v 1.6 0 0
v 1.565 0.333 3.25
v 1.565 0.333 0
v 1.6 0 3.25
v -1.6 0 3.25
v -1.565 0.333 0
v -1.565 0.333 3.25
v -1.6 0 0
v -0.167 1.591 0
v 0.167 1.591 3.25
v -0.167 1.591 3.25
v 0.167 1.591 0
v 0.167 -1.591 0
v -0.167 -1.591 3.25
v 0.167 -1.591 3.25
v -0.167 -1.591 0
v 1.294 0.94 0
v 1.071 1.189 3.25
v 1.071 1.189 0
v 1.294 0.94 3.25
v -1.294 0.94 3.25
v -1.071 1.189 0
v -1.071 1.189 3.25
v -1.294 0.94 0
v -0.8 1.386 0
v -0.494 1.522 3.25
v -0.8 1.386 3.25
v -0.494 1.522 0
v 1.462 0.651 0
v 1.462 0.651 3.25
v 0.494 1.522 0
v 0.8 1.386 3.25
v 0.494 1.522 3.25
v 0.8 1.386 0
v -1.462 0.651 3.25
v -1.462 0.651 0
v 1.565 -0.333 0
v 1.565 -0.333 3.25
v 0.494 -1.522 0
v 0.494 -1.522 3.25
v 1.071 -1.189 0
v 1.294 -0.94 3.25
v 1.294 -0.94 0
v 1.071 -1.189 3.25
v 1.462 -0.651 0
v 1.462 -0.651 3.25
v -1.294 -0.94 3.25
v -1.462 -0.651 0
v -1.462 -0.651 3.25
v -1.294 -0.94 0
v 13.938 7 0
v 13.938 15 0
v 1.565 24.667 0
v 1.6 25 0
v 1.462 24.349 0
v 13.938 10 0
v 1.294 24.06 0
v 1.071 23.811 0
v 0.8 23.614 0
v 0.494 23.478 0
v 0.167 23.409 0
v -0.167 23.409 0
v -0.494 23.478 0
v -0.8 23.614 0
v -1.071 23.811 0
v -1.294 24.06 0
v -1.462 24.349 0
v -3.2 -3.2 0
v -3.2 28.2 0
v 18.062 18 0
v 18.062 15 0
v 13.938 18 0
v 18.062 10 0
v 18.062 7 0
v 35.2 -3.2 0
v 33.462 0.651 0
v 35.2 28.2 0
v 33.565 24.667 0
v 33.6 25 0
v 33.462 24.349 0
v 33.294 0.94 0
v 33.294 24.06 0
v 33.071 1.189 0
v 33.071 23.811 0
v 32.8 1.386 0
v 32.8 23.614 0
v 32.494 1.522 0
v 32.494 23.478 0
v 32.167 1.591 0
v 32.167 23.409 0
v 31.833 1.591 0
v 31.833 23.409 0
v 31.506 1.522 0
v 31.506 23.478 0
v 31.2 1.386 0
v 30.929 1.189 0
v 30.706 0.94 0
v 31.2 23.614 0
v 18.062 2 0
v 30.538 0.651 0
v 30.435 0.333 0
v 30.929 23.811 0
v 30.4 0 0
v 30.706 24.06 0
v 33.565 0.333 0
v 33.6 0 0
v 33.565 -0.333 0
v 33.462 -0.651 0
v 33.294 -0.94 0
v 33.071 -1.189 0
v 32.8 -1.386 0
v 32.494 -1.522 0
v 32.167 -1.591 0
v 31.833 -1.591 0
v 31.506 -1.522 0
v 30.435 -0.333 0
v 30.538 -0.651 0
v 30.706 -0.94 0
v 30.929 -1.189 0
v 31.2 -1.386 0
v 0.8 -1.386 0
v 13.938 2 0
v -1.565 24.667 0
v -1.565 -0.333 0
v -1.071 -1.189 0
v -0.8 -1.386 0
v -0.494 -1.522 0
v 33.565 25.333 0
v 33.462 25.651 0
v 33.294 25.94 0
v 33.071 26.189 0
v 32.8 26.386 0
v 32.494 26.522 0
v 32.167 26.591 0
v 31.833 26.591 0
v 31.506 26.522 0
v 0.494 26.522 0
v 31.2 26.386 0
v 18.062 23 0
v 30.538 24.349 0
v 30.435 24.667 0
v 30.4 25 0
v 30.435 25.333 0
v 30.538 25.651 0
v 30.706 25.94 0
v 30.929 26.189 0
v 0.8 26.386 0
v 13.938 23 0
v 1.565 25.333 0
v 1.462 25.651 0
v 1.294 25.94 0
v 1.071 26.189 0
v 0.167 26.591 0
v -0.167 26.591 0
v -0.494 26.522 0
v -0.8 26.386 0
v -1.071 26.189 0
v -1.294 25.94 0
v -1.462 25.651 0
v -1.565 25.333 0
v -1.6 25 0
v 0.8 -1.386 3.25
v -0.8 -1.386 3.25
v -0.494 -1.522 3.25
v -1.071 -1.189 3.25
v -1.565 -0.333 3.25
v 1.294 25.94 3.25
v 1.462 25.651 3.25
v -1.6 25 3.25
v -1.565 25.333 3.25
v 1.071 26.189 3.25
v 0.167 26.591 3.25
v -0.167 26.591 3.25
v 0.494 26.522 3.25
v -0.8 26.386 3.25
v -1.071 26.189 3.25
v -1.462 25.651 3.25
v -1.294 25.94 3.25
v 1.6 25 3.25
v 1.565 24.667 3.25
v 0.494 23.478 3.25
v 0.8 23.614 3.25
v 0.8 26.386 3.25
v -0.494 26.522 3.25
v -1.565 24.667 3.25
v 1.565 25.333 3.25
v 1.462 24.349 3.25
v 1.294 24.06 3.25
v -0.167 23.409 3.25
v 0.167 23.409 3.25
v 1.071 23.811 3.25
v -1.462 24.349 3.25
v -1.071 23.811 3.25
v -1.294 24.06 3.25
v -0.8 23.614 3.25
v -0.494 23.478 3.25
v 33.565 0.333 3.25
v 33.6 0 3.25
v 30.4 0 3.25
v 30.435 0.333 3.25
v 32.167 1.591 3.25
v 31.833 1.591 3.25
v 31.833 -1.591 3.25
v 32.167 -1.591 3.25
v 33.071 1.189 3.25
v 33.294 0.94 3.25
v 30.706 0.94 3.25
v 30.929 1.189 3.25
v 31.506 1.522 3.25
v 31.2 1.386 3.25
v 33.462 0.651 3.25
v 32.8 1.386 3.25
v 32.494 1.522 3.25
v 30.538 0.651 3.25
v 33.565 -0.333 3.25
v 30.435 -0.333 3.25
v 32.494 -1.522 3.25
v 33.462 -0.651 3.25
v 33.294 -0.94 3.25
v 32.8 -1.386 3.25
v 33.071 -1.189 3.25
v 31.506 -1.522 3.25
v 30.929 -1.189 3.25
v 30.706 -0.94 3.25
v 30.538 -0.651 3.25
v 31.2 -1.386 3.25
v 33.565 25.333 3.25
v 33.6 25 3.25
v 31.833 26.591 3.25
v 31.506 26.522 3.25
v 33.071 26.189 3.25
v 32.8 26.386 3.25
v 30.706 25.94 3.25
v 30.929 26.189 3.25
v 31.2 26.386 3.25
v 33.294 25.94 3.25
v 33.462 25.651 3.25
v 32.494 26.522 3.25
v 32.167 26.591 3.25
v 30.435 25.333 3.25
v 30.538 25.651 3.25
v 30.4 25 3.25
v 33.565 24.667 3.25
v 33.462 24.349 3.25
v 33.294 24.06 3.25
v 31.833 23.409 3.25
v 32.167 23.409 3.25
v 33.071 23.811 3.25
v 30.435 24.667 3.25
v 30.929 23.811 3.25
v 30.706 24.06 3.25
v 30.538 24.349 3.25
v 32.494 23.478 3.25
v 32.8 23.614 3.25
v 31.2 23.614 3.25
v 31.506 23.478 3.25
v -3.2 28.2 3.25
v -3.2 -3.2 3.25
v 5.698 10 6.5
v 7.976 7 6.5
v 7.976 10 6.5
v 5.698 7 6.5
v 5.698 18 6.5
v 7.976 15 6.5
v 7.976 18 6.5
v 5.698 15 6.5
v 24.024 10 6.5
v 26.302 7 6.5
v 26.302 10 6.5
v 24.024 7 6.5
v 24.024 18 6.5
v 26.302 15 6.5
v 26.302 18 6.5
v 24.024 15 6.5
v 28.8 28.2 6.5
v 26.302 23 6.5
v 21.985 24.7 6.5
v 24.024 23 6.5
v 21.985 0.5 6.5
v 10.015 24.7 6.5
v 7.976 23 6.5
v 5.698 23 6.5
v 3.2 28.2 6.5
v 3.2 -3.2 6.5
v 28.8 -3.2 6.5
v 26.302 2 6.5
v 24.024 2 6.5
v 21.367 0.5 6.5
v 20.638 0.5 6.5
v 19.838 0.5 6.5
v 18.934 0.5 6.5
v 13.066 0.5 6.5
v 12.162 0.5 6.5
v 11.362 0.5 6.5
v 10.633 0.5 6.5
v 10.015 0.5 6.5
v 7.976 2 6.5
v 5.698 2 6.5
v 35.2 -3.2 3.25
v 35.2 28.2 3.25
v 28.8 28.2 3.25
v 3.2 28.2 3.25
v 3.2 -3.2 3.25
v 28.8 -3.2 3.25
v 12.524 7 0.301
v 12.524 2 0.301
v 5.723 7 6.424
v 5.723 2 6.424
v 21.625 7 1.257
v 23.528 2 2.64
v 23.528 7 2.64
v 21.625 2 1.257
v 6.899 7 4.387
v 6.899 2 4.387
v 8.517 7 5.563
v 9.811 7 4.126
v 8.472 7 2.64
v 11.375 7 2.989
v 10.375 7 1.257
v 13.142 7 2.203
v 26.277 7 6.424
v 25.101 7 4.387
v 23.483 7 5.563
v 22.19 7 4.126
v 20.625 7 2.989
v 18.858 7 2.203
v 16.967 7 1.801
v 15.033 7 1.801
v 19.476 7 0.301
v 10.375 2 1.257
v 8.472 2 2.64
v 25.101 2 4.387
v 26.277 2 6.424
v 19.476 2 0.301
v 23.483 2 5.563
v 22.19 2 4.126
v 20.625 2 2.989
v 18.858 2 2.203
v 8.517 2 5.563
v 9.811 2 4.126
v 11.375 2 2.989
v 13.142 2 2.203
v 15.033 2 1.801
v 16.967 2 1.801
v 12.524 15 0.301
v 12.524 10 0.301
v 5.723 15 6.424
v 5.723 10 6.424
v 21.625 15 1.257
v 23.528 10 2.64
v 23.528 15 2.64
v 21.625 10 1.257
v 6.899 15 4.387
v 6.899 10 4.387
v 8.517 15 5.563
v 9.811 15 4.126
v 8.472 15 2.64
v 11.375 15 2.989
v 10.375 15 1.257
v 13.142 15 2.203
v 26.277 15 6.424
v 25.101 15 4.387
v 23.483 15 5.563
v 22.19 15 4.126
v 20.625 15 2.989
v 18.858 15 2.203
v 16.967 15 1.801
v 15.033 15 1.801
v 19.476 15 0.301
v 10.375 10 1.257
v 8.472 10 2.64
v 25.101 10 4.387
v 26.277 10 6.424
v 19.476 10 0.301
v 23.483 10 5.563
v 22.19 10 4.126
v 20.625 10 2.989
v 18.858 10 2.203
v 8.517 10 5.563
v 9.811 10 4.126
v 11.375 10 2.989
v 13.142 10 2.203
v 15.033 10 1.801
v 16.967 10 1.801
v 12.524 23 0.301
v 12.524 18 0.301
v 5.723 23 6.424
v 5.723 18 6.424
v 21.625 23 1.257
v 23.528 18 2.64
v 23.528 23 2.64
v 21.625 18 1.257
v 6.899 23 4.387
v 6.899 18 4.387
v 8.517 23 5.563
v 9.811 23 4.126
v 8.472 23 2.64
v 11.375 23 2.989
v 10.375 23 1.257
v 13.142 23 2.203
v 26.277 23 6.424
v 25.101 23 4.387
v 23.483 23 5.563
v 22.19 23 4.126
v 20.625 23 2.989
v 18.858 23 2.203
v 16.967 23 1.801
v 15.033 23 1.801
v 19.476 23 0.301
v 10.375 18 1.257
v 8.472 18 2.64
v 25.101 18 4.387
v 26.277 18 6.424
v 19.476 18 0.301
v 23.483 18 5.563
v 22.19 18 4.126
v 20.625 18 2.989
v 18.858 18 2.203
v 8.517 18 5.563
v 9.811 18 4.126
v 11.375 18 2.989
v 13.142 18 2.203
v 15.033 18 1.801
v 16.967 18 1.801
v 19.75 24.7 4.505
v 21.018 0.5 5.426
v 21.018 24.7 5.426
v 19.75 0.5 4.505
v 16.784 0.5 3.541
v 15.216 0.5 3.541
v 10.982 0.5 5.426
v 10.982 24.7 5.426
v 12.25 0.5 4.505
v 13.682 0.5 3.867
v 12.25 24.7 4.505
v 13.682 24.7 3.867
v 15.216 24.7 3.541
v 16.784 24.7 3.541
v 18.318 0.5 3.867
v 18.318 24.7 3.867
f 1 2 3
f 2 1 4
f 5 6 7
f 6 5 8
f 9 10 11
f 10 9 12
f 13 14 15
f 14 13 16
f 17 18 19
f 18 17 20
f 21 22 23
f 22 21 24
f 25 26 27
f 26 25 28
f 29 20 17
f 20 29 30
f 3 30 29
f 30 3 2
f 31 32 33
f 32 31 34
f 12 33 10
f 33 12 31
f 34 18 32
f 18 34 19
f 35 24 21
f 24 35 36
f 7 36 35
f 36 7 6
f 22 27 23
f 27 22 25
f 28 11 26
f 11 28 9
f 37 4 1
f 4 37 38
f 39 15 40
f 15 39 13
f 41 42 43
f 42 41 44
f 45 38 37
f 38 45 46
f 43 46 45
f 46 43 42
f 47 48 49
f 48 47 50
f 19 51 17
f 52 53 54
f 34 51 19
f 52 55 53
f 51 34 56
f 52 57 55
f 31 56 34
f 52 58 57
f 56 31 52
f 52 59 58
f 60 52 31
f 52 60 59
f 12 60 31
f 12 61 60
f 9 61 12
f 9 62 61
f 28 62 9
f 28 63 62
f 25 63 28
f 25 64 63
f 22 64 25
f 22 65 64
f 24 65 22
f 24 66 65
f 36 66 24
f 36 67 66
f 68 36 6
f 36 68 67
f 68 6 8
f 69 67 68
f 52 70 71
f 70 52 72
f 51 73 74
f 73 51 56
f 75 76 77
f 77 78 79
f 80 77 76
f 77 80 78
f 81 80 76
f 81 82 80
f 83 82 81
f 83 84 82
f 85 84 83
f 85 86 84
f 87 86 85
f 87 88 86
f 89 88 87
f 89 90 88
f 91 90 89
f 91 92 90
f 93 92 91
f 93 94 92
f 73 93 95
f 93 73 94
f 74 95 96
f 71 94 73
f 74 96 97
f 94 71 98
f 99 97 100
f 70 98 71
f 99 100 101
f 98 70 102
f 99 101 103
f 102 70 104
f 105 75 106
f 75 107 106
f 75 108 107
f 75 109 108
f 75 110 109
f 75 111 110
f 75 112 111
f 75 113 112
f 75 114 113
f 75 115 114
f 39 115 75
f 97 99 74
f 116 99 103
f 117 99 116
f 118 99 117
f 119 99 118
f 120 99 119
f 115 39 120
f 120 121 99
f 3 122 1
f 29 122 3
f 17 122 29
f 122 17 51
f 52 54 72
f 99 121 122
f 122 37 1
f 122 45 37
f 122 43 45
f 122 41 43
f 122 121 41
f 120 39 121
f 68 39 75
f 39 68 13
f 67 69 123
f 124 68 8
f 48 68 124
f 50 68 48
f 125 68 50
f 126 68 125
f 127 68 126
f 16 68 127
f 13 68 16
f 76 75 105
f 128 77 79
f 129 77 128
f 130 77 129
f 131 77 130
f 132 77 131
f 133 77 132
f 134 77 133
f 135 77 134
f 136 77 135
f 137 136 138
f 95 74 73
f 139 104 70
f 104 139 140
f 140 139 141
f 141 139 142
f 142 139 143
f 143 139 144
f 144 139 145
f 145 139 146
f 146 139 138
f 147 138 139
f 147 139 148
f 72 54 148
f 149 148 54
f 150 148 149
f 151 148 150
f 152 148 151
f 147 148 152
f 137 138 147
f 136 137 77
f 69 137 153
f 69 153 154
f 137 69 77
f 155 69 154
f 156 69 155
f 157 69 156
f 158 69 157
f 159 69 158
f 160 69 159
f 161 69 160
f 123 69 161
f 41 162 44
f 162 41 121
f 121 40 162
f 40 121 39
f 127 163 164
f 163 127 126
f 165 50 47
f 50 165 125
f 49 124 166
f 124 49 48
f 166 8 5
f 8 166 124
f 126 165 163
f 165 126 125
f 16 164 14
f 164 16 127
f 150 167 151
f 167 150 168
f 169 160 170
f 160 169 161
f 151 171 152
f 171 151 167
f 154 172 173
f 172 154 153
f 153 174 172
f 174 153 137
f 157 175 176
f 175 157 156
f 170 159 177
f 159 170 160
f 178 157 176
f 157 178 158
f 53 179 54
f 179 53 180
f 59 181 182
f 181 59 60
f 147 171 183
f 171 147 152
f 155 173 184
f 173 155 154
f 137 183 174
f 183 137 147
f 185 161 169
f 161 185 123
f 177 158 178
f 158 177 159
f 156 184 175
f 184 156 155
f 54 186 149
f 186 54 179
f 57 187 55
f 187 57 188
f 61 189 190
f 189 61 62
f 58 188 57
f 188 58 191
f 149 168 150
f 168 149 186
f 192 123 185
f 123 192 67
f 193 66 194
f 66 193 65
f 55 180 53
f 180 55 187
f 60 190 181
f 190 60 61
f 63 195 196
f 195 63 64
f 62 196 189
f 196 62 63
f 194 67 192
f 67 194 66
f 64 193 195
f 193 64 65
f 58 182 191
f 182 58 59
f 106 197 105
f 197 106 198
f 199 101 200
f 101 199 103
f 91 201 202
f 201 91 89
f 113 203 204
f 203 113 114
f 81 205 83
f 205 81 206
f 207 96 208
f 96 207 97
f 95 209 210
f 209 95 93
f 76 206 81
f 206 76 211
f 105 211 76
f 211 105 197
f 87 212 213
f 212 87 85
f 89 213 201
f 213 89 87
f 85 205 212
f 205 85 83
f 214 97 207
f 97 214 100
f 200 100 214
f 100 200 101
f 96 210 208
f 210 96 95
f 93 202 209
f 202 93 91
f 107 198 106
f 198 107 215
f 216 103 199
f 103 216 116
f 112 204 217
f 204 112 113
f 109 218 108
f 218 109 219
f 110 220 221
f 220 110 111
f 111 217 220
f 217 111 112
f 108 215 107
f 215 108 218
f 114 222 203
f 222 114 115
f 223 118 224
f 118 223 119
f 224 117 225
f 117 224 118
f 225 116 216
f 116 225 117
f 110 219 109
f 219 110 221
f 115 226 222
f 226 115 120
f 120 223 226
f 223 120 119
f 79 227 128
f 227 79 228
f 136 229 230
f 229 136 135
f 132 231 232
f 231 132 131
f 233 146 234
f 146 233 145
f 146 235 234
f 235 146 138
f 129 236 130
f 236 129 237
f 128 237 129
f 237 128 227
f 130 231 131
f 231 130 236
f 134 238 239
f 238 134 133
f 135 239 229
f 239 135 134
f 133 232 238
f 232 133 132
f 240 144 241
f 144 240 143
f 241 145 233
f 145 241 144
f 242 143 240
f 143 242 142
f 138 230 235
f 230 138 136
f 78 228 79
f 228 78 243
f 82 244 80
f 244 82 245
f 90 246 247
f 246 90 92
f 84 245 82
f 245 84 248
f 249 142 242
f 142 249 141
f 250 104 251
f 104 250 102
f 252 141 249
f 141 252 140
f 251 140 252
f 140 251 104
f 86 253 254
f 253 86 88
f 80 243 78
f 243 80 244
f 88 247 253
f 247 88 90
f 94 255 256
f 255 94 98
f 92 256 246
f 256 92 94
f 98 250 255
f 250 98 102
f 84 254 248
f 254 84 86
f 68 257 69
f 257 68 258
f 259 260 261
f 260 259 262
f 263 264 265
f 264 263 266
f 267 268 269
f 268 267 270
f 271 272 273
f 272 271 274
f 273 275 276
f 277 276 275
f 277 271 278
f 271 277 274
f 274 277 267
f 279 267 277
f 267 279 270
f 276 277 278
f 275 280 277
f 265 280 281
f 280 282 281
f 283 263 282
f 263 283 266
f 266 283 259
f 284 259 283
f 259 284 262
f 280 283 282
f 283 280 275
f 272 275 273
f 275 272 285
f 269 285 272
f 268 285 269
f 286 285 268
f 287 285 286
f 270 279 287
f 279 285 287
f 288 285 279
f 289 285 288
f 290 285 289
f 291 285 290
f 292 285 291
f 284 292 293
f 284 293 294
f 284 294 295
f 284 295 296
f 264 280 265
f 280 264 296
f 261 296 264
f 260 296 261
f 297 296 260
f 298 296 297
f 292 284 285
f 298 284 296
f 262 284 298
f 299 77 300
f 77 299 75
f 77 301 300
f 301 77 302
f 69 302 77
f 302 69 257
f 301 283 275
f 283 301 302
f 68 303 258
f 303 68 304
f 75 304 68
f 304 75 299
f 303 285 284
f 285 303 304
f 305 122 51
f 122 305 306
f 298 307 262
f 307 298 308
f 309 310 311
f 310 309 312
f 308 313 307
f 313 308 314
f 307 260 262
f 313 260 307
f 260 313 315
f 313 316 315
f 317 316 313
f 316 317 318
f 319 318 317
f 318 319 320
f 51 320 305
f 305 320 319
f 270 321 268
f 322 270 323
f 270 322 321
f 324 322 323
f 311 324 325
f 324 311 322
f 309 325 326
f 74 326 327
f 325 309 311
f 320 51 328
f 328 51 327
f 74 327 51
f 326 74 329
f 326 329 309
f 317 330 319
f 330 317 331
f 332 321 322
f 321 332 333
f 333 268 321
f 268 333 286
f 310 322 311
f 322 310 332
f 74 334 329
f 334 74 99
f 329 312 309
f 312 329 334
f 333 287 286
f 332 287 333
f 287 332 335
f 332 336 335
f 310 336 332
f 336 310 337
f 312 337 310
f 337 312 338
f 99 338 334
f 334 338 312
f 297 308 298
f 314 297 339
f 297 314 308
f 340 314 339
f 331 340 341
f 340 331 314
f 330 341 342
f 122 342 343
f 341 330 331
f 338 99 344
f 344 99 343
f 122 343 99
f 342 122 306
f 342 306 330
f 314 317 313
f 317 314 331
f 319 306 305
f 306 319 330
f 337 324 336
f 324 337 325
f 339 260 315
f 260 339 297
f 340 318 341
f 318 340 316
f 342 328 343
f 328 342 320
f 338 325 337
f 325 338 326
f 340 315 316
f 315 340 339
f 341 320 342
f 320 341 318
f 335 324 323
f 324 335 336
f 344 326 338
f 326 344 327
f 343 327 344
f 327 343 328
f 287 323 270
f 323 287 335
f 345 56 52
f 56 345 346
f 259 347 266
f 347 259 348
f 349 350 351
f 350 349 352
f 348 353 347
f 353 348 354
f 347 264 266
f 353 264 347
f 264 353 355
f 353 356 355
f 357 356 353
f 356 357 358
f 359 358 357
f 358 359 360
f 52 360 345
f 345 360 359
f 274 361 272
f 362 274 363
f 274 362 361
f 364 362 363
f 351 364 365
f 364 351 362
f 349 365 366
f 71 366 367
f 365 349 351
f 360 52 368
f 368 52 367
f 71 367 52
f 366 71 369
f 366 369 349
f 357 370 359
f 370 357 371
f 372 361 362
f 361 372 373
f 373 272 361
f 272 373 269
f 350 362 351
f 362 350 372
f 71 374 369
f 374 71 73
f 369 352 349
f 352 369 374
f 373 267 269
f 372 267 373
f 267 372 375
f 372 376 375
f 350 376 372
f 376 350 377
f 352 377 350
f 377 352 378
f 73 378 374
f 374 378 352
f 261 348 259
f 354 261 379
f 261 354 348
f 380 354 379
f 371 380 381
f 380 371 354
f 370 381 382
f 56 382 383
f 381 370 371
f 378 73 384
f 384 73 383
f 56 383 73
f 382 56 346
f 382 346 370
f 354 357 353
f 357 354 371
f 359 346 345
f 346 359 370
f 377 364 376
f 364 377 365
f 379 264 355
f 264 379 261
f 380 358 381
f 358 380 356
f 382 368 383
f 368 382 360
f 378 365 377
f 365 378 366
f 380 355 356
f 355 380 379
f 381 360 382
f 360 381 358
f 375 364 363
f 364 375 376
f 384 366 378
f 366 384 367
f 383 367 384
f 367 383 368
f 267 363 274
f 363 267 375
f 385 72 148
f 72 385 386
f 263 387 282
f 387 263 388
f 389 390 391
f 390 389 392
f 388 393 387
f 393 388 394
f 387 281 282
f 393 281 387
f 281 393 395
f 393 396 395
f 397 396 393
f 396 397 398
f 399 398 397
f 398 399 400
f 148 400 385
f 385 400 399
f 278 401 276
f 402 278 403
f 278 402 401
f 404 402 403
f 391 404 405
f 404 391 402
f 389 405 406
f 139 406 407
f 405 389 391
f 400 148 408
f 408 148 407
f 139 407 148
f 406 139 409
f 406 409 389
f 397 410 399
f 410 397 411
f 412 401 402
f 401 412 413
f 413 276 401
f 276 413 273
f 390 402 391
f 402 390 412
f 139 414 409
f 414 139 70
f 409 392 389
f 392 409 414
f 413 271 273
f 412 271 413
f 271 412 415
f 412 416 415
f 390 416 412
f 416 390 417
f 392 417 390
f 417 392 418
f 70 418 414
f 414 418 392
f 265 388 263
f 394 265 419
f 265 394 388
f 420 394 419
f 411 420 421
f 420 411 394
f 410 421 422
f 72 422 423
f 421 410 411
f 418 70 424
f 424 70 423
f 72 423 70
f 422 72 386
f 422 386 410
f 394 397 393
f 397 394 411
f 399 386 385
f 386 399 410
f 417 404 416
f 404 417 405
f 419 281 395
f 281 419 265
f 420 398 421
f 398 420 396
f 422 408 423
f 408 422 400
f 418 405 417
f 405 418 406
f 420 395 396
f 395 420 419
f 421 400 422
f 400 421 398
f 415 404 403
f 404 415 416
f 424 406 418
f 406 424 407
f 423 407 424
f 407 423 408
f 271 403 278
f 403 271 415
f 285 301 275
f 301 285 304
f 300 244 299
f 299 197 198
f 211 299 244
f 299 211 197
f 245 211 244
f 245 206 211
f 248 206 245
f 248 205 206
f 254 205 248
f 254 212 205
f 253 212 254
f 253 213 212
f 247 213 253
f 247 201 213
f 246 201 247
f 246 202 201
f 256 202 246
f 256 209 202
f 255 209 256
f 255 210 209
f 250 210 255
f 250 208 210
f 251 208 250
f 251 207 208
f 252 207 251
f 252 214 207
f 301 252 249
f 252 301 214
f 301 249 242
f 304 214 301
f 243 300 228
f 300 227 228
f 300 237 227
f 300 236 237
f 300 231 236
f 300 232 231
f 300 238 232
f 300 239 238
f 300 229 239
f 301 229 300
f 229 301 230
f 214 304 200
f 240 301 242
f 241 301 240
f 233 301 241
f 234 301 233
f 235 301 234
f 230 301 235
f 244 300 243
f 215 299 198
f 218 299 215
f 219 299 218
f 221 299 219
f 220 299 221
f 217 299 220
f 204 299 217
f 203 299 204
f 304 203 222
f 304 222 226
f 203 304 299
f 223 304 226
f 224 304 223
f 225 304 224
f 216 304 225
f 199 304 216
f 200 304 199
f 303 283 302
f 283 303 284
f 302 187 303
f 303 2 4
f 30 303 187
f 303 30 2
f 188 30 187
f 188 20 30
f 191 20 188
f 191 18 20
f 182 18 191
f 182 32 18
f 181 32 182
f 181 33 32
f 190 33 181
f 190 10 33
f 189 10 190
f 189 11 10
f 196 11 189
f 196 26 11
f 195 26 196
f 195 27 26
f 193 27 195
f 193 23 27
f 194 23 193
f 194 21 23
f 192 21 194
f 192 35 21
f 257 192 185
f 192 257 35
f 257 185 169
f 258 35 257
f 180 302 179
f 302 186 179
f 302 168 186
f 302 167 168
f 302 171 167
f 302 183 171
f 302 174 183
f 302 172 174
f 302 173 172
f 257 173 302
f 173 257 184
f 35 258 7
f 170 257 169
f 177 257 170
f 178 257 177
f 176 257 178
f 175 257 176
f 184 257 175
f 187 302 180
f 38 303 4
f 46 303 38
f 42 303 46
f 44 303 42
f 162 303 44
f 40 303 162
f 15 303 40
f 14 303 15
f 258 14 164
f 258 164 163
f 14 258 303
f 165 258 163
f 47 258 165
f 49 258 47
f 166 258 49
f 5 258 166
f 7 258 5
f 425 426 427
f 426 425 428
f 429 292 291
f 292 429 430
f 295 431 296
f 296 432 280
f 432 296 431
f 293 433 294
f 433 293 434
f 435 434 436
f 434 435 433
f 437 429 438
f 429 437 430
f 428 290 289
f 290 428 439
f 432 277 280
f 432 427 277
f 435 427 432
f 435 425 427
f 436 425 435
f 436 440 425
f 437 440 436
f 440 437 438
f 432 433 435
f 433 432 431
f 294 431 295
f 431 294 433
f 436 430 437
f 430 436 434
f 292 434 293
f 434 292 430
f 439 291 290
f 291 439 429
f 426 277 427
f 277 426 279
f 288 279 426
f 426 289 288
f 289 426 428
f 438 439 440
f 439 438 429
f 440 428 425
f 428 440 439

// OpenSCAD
// Single bearing holder

// defaults to lm8uu dimensions
module lulz_single_holder(x_sep=91-59,y_sep=64-39,lm8uu=15, height=6.5, holes=true) {
  lm8uu_hold=lm8uu+3.5; // outer shell
  lm8uu_zip=lm8uu_hold+4; // ziptie cutouts
  block_height = height;
  $fs=0.2;
  difference() {
    union() {
      translate([-3.2,-3.2,0])cube([x_sep+6.4,y_sep+6.4,block_height]);
      translate([x_sep/2,-1,5+(lm8uu/2)])rotate([-90,0,0]) cylinder(r=lm8uu_hold/2,h=24);
    }
    translate([-3.2,-3.2,block_height])cube([x_sep+6.4,y_sep+6.4,20]);
    translate([-3.2+x_sep,-3.2,block_height/2])cube([x_sep+6.4,y_sep+6.4,20]);
    translate([-3.2-x_sep,-3.2,block_height/2])cube([x_sep+6.4,y_sep+6.4,20]);
    if (holes) {
      for (i = [0, x_sep]) {
        for (j = [0,y_sep]) {
          translate([i,j,0]) cylinder(r=3.2/2,h=10);
        }
      }
    }
    translate([x_sep/2,0.5,block_height-3+(lm8uu/2)])rotate([-90,0,0]) cylinder(r=lm8uu/2,h=24.2);
    for (i = [2, 10, 18]) {
      translate([0,i,0])
        difference() {
          translate([x_sep/2,0,block_height-3+(lm8uu/2)])rotate([-90,0,0]) cylinder(r=lm8uu_zip/2,h=5);
          translate([x_sep/2,-1,block_height-3+(lm8uu/2)])rotate([-90,0,0]) cylinder(r=lm8uu_hold/2,h=24);
          translate([x_sep/2,-1,block_height-3+(lm8uu/2)])rotate([-90,0,0]) cylinder(r=lm8uu/2,h=24);
        }
    }
  }
}

lulz_single_holder();
